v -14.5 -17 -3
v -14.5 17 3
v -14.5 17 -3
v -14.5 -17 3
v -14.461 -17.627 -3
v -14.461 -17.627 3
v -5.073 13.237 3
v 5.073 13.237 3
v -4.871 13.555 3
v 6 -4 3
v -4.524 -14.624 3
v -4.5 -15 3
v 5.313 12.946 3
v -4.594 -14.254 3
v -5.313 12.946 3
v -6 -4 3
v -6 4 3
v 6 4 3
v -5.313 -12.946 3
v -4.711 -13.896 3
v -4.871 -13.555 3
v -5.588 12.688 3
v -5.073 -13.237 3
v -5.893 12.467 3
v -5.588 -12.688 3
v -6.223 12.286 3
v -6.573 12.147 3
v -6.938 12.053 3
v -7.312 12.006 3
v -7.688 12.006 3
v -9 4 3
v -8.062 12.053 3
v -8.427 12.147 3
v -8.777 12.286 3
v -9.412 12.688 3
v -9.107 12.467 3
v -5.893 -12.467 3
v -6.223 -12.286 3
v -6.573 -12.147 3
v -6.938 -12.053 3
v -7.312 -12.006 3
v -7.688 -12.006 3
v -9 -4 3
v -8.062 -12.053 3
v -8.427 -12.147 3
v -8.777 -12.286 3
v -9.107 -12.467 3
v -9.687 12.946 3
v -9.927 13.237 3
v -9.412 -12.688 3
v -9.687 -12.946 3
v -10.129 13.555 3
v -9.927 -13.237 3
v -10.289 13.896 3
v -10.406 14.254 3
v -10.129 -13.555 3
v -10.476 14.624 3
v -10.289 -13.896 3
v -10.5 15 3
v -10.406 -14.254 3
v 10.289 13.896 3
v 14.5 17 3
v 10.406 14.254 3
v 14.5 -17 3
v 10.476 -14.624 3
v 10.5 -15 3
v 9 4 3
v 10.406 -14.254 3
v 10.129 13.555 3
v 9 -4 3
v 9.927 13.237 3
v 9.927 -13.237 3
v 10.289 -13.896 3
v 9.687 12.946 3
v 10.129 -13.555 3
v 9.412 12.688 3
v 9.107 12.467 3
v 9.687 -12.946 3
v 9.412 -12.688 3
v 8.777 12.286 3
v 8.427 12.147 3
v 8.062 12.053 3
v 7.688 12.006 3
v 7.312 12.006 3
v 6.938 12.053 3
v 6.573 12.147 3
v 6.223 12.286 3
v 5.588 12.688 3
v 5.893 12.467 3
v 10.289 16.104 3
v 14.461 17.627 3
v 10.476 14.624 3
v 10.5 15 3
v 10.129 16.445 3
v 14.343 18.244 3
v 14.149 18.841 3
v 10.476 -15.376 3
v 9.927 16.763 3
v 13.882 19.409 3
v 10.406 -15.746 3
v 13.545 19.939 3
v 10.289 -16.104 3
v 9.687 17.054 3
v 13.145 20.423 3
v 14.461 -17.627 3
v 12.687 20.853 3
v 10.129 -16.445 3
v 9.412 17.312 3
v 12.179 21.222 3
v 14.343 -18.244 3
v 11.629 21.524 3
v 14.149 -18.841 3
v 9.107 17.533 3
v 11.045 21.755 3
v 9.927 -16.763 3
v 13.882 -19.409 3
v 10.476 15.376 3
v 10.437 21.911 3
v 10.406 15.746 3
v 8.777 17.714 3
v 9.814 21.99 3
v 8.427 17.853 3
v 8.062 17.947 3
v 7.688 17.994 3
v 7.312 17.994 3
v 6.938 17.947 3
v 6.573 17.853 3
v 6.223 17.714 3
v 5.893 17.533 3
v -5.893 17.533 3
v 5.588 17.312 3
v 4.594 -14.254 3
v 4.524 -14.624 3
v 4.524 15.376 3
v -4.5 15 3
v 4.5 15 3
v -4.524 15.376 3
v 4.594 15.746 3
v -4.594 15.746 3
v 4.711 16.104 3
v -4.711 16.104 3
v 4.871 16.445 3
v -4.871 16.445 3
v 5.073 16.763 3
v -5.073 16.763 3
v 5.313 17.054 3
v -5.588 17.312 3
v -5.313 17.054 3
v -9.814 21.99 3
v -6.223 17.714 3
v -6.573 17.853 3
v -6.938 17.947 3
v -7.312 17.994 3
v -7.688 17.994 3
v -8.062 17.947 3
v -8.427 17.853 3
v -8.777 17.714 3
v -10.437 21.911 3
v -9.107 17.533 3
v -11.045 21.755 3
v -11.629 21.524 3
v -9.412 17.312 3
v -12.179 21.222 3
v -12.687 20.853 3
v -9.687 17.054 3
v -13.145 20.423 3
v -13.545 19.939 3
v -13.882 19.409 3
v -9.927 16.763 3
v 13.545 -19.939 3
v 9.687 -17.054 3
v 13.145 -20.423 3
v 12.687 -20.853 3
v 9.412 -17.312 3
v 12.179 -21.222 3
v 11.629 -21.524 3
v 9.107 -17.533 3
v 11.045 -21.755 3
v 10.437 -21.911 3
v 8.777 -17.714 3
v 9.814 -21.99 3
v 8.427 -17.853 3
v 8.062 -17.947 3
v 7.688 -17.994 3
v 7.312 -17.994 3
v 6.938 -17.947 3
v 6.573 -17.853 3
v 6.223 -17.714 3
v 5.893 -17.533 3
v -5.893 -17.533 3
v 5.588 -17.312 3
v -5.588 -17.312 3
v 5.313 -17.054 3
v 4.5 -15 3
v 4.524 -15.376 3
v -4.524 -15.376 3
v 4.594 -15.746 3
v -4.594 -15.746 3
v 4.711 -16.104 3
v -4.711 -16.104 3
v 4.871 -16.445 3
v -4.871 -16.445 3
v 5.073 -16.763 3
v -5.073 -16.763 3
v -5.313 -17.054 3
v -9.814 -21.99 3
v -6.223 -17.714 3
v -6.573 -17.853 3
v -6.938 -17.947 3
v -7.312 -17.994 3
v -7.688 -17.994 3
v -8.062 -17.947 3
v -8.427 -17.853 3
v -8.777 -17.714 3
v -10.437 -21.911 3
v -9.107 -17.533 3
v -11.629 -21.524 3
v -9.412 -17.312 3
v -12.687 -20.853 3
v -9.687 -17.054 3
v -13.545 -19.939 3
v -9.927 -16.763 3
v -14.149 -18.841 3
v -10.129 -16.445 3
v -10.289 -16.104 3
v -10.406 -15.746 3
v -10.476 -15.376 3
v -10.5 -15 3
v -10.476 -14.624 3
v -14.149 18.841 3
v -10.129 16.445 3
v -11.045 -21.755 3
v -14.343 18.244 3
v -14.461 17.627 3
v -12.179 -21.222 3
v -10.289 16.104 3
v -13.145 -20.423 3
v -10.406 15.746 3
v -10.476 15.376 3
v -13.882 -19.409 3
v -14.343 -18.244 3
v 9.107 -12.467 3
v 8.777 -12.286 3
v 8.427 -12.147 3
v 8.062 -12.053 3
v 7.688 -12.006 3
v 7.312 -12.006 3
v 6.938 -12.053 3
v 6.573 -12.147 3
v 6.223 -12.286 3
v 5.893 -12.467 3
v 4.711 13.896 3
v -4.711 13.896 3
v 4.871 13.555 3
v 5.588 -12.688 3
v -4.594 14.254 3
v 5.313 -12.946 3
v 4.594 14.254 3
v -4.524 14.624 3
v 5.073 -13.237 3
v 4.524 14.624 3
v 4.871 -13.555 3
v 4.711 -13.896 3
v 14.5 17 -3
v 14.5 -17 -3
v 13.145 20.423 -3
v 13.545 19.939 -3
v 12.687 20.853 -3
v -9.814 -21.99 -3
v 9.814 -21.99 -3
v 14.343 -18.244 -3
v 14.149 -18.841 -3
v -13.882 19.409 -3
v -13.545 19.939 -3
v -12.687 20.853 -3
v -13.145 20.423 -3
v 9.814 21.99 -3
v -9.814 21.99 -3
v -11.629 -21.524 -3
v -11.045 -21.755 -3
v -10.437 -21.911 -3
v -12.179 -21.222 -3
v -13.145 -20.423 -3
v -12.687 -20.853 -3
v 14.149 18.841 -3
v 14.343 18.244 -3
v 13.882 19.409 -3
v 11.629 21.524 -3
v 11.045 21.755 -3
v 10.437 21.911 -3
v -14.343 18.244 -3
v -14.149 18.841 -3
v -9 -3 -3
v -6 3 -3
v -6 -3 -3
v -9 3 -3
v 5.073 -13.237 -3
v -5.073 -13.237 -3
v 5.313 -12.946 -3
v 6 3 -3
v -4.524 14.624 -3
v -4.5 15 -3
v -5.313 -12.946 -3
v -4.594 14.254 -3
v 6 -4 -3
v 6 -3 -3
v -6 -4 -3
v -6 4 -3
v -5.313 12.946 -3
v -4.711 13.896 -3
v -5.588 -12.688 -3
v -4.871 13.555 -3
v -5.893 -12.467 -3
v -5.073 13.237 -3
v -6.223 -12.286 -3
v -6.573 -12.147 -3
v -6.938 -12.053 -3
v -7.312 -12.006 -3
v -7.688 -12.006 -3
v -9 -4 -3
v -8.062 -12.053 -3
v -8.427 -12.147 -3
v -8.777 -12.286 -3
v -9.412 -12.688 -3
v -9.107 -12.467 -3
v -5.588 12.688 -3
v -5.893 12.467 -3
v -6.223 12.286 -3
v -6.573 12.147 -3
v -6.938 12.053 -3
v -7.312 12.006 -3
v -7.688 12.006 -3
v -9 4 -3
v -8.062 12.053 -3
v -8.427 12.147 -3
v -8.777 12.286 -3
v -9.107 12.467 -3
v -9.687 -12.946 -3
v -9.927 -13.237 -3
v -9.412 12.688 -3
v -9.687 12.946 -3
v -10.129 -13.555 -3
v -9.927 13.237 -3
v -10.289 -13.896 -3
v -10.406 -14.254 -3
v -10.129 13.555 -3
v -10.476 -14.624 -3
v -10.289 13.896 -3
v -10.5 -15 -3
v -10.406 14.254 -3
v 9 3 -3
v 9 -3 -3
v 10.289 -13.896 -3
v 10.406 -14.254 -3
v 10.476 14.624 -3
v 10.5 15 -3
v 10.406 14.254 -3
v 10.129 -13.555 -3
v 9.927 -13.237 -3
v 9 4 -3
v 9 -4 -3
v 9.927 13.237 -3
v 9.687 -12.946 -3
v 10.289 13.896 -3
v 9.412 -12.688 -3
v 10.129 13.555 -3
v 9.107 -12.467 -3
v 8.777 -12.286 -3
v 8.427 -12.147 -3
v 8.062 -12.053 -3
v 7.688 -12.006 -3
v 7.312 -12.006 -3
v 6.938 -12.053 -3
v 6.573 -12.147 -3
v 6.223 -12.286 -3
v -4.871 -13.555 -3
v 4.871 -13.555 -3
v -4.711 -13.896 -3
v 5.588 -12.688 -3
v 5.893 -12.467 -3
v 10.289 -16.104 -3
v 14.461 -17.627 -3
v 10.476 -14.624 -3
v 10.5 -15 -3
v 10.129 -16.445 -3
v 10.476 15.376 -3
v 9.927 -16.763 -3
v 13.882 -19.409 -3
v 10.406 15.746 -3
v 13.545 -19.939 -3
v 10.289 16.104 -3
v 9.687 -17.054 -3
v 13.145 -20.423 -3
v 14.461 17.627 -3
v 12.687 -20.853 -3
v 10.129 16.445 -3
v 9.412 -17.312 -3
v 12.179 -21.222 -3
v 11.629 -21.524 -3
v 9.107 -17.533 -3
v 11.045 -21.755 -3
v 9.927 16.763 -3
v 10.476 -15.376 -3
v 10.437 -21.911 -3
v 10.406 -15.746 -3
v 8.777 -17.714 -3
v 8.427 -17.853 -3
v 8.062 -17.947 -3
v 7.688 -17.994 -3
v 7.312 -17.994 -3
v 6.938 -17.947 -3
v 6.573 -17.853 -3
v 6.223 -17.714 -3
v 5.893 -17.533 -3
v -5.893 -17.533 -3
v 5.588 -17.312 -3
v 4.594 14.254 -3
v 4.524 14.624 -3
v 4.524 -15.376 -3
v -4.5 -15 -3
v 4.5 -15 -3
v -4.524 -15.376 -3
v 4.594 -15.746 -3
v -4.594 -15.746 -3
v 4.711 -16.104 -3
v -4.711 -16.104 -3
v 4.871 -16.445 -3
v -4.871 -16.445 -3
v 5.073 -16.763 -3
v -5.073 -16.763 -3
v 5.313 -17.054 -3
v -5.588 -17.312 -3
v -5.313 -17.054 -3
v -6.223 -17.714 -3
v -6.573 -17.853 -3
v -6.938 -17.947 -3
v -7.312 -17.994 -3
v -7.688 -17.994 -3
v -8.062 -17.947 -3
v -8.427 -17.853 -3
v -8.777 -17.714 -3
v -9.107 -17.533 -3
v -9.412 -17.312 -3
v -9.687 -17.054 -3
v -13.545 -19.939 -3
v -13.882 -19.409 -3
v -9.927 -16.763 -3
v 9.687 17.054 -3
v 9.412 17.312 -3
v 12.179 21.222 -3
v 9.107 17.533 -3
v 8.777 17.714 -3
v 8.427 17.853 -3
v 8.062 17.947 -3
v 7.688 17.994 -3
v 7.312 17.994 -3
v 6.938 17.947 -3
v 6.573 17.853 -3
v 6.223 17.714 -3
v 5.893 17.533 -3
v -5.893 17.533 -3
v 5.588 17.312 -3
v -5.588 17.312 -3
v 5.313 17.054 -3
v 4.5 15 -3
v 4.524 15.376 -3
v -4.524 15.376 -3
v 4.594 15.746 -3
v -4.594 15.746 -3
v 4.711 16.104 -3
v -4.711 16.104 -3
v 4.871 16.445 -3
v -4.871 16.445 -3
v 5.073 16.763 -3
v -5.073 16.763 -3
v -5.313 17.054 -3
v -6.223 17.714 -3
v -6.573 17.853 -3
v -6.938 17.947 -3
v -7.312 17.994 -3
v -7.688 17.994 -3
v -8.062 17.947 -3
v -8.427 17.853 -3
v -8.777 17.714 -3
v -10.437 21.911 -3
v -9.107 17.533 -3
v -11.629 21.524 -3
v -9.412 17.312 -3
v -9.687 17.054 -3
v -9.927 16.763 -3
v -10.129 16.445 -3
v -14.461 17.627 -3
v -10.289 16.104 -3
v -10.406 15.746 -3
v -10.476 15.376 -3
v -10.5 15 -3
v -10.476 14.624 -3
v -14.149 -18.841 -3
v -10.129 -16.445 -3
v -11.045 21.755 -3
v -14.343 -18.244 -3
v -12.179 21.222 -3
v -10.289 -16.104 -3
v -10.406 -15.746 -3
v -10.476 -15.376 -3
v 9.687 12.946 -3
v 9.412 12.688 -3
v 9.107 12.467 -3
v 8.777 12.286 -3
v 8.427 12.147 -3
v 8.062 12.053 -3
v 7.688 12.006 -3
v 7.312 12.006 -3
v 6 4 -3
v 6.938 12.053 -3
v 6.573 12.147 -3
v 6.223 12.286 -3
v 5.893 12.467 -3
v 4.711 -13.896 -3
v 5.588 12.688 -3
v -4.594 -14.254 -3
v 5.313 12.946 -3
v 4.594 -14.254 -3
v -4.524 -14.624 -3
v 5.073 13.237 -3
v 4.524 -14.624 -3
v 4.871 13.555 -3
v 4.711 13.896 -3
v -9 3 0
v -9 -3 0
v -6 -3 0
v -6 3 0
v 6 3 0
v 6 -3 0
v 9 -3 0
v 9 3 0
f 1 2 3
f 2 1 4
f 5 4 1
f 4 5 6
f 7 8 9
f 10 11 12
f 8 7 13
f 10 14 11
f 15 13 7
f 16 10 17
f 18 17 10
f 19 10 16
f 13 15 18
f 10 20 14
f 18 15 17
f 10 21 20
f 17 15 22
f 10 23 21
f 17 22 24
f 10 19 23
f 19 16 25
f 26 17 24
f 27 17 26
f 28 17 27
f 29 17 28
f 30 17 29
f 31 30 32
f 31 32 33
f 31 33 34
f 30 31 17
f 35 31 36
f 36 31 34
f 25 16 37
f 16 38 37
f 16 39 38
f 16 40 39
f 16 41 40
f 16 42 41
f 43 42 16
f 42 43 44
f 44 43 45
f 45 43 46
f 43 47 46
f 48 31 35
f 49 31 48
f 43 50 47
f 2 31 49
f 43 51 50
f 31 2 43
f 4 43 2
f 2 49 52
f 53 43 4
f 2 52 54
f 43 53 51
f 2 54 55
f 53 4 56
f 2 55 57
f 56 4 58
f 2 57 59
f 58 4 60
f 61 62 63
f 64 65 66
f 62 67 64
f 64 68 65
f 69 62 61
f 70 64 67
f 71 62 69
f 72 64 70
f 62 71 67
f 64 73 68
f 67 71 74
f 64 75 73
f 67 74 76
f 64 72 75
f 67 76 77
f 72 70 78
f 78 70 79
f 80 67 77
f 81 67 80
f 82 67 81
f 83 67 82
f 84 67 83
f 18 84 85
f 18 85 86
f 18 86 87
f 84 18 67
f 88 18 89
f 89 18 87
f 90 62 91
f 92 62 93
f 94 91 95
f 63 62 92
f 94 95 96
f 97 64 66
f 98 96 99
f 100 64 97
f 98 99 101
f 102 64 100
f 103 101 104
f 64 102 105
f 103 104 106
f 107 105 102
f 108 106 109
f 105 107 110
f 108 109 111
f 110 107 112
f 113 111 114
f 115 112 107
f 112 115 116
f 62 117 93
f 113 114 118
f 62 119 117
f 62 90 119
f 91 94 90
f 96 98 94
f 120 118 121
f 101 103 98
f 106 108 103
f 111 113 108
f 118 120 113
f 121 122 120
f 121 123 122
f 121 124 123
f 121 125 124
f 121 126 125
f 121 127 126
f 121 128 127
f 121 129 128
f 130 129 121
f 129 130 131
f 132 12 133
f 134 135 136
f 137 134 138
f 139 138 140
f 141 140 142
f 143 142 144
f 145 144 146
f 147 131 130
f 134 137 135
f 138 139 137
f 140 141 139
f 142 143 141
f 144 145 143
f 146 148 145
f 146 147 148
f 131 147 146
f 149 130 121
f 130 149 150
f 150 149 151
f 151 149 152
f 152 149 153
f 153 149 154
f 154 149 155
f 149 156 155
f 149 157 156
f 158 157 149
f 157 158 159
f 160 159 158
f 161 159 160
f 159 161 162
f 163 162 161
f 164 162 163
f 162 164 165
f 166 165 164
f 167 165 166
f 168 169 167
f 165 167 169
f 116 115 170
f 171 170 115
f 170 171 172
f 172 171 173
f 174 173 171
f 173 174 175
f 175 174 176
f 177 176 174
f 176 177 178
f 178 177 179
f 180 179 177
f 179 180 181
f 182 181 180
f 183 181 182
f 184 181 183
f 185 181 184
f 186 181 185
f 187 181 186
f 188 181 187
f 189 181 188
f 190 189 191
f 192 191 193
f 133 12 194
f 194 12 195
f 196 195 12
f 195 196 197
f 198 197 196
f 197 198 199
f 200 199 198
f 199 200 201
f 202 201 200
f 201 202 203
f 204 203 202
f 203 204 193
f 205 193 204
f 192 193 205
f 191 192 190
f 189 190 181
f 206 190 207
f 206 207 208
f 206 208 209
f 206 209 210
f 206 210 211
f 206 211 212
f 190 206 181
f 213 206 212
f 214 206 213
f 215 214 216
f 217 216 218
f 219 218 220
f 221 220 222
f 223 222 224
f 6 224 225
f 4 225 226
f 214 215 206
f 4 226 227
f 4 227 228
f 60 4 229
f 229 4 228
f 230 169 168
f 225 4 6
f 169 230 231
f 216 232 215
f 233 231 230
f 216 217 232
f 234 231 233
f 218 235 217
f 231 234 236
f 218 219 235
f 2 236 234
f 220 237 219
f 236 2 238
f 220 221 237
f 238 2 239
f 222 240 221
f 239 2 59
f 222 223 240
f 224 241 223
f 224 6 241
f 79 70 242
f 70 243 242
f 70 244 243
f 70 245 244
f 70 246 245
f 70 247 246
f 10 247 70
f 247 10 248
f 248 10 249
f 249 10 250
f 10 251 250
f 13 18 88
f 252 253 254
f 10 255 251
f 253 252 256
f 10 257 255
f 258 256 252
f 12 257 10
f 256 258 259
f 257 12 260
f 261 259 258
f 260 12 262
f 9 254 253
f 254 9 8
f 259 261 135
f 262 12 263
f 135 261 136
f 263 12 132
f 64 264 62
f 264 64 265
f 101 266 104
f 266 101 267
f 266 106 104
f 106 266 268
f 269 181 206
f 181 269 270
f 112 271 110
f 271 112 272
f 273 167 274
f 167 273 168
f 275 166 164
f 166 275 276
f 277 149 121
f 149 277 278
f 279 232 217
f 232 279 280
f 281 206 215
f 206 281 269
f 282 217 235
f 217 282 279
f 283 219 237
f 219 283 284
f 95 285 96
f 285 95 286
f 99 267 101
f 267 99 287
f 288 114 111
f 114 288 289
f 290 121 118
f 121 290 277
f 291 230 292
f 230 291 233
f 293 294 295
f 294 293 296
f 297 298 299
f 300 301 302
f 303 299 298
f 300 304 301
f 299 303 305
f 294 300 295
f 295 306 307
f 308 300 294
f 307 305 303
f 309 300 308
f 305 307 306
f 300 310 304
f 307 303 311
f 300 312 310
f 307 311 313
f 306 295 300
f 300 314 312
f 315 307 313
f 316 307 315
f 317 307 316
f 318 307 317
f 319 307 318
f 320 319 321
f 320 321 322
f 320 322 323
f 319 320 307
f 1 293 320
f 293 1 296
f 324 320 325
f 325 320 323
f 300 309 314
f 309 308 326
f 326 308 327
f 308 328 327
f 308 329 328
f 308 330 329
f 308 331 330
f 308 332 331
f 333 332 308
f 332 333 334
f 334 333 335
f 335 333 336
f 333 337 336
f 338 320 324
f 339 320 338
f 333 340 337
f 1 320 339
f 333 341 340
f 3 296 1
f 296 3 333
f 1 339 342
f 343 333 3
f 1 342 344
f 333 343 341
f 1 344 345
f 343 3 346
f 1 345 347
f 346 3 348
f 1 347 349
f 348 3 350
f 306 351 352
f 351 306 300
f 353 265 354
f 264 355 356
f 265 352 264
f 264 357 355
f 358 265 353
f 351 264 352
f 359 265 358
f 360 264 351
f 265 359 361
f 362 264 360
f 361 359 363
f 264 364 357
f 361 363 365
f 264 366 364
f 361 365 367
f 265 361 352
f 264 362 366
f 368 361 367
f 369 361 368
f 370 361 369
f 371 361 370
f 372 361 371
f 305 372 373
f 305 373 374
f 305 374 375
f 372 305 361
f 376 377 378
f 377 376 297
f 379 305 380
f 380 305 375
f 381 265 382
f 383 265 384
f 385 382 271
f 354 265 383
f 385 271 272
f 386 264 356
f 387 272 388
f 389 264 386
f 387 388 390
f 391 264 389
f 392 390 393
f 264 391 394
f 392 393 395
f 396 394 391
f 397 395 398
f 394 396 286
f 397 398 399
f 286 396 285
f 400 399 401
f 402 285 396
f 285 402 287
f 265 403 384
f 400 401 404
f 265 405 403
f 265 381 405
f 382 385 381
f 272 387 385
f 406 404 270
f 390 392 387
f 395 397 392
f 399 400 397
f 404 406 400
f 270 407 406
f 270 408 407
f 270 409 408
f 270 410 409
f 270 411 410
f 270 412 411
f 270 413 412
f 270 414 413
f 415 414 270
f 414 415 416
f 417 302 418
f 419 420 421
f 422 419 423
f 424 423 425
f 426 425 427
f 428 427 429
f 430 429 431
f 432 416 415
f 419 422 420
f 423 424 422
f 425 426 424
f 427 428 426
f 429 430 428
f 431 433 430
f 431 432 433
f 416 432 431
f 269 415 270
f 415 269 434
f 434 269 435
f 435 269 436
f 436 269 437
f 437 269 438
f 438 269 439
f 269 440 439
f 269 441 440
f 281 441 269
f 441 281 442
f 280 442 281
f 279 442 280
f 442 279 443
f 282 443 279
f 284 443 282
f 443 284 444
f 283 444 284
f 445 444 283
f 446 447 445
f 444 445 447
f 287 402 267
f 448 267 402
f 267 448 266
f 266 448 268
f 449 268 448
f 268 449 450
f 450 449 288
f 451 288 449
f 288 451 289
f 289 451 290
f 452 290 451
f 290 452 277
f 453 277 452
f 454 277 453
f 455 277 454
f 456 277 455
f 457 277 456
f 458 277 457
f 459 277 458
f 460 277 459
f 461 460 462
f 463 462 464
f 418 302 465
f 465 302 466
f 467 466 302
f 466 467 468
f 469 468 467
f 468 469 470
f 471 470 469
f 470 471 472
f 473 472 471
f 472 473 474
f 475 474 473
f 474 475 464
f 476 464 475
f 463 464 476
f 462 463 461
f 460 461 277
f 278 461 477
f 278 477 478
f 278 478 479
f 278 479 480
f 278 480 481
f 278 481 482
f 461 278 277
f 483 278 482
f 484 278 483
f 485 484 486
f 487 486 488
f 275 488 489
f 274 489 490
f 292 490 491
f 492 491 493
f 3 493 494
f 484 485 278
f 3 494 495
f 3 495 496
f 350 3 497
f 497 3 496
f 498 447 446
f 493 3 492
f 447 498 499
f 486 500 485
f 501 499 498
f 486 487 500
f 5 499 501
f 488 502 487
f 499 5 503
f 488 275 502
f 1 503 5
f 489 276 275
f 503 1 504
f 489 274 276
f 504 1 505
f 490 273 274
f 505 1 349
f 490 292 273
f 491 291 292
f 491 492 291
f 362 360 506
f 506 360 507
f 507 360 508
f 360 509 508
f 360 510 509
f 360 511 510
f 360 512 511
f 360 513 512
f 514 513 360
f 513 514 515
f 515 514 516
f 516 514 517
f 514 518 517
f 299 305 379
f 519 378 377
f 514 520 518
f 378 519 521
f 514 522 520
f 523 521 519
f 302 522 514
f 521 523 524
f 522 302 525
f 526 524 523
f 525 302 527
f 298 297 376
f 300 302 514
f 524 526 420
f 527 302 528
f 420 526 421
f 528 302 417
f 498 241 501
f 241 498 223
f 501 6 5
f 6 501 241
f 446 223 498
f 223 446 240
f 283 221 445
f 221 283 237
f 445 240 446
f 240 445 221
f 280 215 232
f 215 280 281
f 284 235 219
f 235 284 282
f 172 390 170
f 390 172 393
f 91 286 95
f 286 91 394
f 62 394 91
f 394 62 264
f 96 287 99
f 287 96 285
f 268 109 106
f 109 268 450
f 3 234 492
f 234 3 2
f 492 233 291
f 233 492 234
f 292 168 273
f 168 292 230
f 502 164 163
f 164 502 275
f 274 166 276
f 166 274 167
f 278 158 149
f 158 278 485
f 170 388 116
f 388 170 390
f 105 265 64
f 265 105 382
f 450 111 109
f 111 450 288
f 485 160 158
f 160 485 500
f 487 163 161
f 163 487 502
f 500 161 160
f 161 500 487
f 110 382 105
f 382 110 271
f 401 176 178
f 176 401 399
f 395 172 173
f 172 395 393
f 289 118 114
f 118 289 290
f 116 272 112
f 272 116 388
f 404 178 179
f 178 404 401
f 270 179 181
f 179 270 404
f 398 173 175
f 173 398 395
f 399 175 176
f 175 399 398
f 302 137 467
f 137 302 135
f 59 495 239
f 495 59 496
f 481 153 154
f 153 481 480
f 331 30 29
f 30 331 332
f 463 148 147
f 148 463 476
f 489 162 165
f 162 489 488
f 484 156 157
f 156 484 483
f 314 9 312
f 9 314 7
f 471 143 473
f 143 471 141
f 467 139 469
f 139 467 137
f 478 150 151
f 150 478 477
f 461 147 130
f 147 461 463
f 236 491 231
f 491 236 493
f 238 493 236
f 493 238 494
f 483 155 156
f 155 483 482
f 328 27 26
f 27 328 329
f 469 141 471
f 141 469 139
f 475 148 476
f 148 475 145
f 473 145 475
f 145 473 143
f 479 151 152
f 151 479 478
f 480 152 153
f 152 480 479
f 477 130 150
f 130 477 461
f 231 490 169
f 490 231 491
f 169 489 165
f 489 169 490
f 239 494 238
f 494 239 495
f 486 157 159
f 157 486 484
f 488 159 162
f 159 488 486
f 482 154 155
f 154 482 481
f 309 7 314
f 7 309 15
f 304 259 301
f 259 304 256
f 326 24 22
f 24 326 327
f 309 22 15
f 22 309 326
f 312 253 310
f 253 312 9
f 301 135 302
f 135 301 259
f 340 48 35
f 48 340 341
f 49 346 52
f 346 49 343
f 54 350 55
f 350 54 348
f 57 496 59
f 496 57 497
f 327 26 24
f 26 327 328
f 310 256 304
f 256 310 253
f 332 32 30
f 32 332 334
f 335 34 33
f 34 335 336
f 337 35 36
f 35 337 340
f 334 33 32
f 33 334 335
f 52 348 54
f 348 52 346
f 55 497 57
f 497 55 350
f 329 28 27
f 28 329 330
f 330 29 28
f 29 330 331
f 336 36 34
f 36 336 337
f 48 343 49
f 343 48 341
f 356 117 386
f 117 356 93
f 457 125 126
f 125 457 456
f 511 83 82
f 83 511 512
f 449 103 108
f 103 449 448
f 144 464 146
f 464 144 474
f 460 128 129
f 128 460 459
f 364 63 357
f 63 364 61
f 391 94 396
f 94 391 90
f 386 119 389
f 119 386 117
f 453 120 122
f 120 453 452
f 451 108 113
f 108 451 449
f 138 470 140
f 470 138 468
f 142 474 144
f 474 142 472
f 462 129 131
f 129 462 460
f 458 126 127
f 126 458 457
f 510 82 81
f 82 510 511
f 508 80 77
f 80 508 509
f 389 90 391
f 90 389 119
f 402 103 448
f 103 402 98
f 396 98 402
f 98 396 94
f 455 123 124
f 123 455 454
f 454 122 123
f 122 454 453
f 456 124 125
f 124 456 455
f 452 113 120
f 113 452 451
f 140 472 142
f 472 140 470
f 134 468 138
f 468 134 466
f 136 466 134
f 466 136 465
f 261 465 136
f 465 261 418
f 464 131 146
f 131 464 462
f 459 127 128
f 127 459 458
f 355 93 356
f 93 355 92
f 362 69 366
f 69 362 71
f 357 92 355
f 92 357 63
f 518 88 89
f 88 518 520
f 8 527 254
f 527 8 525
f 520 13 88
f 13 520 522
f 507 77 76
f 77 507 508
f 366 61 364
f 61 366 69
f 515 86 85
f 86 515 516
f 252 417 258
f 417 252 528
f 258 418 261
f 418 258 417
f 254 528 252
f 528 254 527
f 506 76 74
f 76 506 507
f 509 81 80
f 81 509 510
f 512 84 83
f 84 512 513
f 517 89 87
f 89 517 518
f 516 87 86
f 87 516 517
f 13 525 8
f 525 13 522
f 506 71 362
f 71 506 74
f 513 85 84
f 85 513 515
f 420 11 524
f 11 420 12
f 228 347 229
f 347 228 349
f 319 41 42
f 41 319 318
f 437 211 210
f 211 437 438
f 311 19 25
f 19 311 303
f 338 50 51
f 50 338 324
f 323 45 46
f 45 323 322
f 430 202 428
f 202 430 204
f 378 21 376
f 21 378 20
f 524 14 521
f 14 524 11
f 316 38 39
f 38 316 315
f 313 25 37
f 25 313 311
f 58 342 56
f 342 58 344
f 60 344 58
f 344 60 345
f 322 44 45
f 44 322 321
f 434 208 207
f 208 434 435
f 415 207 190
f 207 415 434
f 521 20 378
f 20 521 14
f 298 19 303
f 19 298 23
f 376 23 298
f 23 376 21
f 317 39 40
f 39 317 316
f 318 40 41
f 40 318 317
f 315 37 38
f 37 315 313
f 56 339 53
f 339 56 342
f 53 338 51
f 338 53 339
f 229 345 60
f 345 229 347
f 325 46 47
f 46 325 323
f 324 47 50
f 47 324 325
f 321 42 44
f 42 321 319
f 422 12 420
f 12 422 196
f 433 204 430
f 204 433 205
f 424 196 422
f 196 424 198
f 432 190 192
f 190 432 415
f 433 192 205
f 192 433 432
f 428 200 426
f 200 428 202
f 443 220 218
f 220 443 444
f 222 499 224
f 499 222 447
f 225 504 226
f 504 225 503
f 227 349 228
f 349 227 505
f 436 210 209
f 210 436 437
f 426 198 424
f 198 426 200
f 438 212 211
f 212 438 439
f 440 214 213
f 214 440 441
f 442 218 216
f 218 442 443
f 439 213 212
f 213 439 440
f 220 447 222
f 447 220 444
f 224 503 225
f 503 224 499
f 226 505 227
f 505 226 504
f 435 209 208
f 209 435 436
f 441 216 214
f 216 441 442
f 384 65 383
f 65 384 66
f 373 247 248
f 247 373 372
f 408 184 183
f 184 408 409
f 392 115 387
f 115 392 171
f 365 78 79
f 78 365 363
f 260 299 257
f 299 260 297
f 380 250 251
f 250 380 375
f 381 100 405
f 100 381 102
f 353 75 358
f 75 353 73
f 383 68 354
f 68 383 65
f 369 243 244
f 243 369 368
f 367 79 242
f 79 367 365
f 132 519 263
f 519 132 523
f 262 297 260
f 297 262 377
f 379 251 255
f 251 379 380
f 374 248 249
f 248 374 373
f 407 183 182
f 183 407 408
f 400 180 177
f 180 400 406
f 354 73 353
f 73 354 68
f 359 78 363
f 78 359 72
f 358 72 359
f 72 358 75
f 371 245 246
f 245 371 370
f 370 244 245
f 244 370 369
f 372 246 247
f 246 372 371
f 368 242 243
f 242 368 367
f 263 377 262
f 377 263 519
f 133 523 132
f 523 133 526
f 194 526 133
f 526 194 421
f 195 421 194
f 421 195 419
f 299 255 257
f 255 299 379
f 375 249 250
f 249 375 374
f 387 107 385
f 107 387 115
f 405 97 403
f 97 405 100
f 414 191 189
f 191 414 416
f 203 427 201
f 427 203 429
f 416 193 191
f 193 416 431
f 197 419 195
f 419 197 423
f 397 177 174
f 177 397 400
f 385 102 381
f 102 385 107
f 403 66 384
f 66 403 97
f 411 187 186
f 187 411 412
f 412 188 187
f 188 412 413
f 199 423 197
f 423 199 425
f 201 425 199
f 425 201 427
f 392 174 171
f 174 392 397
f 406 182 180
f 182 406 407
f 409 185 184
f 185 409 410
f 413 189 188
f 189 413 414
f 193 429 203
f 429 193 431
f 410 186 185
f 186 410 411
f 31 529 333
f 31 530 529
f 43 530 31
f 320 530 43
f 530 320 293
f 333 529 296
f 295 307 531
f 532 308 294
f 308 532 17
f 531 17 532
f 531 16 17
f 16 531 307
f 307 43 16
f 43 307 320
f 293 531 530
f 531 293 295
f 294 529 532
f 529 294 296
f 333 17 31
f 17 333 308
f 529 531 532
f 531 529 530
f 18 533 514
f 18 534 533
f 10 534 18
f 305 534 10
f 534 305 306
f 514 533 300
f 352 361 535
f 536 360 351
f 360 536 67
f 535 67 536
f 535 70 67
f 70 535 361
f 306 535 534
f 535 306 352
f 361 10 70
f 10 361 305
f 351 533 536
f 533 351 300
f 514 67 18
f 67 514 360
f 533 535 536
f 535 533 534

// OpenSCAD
$fn = 50;


difference() {
	union() {
		translate(v = [0, 0, -3.0000000000]) {
			hull() {
				translate(v = [-9.5000000000, 17.0000000000, 0]) {
					cylinder(h = 6, r = 5);
				}
				translate(v = [9.5000000000, 17.0000000000, 0]) {
					cylinder(h = 6, r = 5);
				}
				translate(v = [-9.5000000000, -17.0000000000, 0]) {
					cylinder(h = 6, r = 5);
				}
				translate(v = [9.5000000000, -17.0000000000, 0]) {
					cylinder(h = 6, r = 5);
				}
			}
		}
		translate(v = [0, 0, -3.0000000000]) {
			hull() {
				translate(v = [-9.5000000000, 17.0000000000, 0]) {
					cylinder(h = 6, r = 5);
				}
				translate(v = [9.5000000000, 17.0000000000, 0]) {
					cylinder(h = 6, r = 5);
				}
				translate(v = [-9.5000000000, -17.0000000000, 0]) {
					cylinder(h = 6, r = 5);
				}
				translate(v = [9.5000000000, -17.0000000000, 0]) {
					cylinder(h = 6, r = 5);
				}
			}
		}
	}
	union() {
		translate(v = [-7.5000000000, 15.0000000000, -50.0000000000]) {
			cylinder(h = 100, r = 3.0000000000);
		}
		translate(v = [7.5000000000, 15.0000000000, -50.0000000000]) {
			cylinder(h = 100, r = 3.0000000000);
		}
		translate(v = [-7.5000000000, -15.0000000000, -50.0000000000]) {
			cylinder(h = 100, r = 3.0000000000);
		}
		translate(v = [7.5000000000, -15.0000000000, -50.0000000000]) {
			cylinder(h = 100, r = 3.0000000000);
		}
		translate(v = [-9.0000000000, -4.0000000000, -50]) {
			cube(size = [3, 1, 100]);
		}
		translate(v = [-9.0000000000, 3.0000000000, -50]) {
			cube(size = [3, 1, 100]);
		}
		translate(v = [-9.0000000000, -4.0000000000, 0]) {
			cube(size = [3, 8, 3]);
		}
		translate(v = [6.0000000000, -4.0000000000, -50]) {
			cube(size = [3, 1, 100]);
		}
		translate(v = [6.0000000000, 3.0000000000, -50]) {
			cube(size = [3, 1, 100]);
		}
		translate(v = [6.0000000000, -4.0000000000, 0]) {
			cube(size = [3, 8, 3]);
		}
	}
}
